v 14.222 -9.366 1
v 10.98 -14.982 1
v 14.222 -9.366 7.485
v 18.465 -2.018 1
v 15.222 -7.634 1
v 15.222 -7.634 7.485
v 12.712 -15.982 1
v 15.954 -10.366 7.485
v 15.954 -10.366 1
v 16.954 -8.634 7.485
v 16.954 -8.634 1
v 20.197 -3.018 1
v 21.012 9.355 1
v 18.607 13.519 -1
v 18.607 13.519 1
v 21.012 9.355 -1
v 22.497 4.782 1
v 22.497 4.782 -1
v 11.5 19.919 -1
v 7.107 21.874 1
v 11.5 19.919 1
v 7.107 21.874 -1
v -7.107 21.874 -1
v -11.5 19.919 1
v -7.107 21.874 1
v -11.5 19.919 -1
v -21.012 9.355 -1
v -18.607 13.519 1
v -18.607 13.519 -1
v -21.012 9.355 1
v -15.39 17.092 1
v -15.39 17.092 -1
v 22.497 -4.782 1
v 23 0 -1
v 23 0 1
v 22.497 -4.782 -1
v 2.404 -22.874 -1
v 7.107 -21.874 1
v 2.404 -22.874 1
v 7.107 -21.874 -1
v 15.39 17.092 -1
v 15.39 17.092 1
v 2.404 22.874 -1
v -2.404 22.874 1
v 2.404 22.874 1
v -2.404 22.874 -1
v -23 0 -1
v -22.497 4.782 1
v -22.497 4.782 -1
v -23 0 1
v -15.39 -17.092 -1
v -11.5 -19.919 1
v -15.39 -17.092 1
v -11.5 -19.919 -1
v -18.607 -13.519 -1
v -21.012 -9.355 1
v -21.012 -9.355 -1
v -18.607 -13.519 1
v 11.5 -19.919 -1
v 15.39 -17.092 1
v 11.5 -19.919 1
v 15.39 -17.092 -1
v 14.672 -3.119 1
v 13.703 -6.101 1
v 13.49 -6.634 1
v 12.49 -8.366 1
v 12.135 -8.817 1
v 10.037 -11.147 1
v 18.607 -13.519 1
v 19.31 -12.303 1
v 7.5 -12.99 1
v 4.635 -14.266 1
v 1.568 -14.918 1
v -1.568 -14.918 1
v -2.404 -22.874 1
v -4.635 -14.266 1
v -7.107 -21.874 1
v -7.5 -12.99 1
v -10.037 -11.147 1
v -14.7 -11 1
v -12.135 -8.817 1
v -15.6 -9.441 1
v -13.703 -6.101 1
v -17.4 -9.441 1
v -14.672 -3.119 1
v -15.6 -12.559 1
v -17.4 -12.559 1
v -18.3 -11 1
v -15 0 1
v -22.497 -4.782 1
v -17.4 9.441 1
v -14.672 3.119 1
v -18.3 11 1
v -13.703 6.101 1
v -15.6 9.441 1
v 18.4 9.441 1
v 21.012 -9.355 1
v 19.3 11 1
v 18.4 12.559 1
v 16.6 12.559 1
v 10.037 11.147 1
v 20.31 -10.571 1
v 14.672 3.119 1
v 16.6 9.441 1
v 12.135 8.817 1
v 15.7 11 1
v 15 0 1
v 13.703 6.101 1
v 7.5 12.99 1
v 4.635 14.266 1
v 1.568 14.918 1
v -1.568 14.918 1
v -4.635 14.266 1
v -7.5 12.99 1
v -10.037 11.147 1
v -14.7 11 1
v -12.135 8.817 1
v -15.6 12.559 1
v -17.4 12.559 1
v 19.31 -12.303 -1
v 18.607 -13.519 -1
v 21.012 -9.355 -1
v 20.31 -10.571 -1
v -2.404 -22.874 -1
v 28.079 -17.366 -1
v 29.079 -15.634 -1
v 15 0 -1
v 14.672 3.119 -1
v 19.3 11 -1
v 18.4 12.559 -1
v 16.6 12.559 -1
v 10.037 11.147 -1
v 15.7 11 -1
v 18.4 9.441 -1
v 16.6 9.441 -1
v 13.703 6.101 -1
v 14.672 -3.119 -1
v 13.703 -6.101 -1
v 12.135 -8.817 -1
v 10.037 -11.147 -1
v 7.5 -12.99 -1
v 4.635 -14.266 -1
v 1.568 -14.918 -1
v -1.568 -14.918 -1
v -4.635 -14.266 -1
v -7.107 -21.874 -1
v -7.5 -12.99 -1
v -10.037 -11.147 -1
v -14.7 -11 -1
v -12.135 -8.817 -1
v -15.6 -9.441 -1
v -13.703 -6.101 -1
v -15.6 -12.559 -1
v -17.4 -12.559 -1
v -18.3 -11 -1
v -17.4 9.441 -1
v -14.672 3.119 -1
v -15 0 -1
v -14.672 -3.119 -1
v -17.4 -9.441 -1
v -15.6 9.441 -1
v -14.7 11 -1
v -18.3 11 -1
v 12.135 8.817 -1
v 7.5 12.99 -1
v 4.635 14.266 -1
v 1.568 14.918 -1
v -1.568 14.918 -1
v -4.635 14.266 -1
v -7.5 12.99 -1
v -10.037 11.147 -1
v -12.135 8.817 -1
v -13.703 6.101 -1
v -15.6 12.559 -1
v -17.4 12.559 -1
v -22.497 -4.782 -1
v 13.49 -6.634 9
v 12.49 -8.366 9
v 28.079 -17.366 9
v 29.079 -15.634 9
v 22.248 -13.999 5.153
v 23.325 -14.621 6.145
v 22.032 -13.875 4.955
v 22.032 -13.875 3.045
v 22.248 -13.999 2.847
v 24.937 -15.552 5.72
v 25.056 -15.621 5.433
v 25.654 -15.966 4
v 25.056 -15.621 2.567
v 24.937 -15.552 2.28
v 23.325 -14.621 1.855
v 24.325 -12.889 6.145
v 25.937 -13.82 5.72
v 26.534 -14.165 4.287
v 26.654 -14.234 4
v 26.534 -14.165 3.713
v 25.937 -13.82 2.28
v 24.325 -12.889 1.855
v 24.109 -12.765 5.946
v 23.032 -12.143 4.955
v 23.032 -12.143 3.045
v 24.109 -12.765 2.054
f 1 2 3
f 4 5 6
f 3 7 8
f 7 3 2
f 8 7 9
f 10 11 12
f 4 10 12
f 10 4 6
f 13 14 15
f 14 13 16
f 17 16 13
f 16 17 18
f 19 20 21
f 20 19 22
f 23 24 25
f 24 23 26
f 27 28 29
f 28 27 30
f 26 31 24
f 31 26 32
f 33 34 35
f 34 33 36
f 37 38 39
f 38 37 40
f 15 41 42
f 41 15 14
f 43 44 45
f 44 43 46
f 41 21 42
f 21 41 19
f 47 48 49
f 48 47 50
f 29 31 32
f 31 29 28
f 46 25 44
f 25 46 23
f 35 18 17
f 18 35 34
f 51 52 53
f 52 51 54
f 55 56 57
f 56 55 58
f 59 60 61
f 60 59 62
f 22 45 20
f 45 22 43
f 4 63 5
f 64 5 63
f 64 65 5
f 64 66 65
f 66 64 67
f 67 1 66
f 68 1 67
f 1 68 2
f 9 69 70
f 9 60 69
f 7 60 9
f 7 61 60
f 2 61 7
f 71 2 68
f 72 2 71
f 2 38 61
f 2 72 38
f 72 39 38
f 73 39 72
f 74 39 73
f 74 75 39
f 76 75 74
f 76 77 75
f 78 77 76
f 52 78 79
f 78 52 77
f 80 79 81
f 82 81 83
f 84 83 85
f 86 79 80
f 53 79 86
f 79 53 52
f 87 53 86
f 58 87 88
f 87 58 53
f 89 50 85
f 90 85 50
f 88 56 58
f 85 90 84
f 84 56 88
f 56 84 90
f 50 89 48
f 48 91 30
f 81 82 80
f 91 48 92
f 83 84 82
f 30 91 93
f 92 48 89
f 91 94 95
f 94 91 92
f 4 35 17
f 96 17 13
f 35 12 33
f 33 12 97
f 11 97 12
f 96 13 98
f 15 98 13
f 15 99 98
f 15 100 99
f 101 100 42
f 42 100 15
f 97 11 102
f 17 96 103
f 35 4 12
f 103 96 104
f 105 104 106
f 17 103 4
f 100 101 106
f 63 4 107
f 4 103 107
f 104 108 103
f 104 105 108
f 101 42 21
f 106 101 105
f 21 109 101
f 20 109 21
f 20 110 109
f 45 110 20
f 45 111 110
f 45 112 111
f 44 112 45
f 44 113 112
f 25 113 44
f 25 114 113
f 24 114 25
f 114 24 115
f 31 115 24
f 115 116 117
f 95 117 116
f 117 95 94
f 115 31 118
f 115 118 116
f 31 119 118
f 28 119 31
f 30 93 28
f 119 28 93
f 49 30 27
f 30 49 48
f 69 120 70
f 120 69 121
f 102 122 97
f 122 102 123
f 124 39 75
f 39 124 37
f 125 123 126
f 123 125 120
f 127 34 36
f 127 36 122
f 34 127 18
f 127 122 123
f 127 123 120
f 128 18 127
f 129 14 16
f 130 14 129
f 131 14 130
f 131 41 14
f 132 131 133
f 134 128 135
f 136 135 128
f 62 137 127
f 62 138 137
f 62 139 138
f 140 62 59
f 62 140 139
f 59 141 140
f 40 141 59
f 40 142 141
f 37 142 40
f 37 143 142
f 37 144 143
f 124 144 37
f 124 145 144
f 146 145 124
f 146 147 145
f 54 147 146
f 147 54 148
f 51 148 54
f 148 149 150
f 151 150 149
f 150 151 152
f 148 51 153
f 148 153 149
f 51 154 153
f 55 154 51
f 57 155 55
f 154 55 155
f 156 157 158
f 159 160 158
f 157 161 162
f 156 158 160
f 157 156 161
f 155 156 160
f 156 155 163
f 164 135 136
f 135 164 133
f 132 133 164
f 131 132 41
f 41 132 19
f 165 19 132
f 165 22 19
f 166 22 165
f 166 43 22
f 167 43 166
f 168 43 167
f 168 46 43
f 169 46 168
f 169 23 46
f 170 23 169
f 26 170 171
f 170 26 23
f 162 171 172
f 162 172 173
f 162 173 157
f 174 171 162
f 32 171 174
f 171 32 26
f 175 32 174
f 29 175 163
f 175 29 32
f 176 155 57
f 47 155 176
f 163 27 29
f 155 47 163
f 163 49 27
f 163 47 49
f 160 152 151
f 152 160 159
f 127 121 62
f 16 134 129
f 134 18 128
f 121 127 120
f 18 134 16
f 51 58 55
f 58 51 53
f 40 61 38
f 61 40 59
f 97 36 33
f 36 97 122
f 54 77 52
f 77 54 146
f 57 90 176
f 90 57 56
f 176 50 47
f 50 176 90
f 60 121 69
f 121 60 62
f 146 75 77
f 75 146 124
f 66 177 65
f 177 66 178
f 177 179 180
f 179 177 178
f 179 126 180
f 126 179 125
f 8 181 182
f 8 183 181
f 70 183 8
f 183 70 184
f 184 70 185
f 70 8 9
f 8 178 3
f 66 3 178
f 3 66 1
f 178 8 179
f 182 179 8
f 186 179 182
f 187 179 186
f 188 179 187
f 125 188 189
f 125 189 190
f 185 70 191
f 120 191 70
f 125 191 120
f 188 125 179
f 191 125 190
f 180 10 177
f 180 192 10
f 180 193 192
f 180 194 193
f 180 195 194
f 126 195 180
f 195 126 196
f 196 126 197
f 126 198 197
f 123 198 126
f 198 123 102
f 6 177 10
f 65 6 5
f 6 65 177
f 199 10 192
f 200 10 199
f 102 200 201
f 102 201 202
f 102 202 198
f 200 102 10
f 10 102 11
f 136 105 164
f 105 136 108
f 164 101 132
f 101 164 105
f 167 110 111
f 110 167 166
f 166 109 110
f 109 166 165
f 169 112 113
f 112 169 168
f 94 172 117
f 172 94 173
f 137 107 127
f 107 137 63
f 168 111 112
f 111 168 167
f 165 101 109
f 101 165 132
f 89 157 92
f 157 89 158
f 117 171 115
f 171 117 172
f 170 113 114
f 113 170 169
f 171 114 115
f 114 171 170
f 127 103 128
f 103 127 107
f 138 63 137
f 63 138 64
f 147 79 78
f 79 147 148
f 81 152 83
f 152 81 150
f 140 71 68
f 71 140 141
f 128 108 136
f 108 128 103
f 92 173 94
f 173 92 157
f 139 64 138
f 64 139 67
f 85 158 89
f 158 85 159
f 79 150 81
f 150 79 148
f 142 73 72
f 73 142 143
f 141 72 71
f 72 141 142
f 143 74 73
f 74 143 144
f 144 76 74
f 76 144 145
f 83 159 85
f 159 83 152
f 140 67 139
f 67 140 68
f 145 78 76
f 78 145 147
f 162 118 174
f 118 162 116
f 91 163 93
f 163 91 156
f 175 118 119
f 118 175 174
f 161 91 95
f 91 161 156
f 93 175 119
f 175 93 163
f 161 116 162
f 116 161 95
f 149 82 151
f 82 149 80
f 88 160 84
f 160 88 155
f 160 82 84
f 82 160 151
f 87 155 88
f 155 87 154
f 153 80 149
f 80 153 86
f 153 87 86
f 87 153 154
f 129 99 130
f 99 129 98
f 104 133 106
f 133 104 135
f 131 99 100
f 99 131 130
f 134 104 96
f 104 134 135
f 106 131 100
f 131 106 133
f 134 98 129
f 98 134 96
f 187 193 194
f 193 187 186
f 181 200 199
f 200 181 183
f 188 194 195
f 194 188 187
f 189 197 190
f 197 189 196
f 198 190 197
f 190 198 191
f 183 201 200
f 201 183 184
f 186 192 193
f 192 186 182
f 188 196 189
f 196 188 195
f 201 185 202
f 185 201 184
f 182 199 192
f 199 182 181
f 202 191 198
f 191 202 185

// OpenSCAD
difference () {
  union () {
    cylinder (h=2, r=23, center=true);
    rotate (a=-29.999999999999996, v=[0, 0, 1]) {
      translate ([24, 0, 4]) {
        cube ([18, 2, 10], center=true);
      }
    }
    rotate (a=-29.999999999999996, v=[0, 0, 1]) {
      translate ([18, 0, 0]) {
        intersection () {
          rotate (a=45.0, v=[1, 0, 0]) {
            cube ([2, 12, 12], center=true);
          }
          translate ([0, 0, 15]) {
            cube ([2, 30, 30], center=true);
          }
        }
      }
    }
  }
  cylinder (h=2, r=15, center=true);
  translate ([-16.5, 11, ]) {
    cylinder (h=2, r=1.8, center=true);
  }
  translate ([-16.5, -11, ]) {
    cylinder (h=2, r=1.8, center=true);
  }
  translate ([17.5, 11, ]) {
    cylinder (h=2, r=1.8, center=true);
  }
  rotate (a=-29.999999999999996, v=[0, 0, 1]) {
    translate ([28, 0, 4]) {
      rotate (a=90.0, v=[1, 0, 0]) {
        cylinder (h=3, r=2.2, center=true);
      }
    }
  }
}
